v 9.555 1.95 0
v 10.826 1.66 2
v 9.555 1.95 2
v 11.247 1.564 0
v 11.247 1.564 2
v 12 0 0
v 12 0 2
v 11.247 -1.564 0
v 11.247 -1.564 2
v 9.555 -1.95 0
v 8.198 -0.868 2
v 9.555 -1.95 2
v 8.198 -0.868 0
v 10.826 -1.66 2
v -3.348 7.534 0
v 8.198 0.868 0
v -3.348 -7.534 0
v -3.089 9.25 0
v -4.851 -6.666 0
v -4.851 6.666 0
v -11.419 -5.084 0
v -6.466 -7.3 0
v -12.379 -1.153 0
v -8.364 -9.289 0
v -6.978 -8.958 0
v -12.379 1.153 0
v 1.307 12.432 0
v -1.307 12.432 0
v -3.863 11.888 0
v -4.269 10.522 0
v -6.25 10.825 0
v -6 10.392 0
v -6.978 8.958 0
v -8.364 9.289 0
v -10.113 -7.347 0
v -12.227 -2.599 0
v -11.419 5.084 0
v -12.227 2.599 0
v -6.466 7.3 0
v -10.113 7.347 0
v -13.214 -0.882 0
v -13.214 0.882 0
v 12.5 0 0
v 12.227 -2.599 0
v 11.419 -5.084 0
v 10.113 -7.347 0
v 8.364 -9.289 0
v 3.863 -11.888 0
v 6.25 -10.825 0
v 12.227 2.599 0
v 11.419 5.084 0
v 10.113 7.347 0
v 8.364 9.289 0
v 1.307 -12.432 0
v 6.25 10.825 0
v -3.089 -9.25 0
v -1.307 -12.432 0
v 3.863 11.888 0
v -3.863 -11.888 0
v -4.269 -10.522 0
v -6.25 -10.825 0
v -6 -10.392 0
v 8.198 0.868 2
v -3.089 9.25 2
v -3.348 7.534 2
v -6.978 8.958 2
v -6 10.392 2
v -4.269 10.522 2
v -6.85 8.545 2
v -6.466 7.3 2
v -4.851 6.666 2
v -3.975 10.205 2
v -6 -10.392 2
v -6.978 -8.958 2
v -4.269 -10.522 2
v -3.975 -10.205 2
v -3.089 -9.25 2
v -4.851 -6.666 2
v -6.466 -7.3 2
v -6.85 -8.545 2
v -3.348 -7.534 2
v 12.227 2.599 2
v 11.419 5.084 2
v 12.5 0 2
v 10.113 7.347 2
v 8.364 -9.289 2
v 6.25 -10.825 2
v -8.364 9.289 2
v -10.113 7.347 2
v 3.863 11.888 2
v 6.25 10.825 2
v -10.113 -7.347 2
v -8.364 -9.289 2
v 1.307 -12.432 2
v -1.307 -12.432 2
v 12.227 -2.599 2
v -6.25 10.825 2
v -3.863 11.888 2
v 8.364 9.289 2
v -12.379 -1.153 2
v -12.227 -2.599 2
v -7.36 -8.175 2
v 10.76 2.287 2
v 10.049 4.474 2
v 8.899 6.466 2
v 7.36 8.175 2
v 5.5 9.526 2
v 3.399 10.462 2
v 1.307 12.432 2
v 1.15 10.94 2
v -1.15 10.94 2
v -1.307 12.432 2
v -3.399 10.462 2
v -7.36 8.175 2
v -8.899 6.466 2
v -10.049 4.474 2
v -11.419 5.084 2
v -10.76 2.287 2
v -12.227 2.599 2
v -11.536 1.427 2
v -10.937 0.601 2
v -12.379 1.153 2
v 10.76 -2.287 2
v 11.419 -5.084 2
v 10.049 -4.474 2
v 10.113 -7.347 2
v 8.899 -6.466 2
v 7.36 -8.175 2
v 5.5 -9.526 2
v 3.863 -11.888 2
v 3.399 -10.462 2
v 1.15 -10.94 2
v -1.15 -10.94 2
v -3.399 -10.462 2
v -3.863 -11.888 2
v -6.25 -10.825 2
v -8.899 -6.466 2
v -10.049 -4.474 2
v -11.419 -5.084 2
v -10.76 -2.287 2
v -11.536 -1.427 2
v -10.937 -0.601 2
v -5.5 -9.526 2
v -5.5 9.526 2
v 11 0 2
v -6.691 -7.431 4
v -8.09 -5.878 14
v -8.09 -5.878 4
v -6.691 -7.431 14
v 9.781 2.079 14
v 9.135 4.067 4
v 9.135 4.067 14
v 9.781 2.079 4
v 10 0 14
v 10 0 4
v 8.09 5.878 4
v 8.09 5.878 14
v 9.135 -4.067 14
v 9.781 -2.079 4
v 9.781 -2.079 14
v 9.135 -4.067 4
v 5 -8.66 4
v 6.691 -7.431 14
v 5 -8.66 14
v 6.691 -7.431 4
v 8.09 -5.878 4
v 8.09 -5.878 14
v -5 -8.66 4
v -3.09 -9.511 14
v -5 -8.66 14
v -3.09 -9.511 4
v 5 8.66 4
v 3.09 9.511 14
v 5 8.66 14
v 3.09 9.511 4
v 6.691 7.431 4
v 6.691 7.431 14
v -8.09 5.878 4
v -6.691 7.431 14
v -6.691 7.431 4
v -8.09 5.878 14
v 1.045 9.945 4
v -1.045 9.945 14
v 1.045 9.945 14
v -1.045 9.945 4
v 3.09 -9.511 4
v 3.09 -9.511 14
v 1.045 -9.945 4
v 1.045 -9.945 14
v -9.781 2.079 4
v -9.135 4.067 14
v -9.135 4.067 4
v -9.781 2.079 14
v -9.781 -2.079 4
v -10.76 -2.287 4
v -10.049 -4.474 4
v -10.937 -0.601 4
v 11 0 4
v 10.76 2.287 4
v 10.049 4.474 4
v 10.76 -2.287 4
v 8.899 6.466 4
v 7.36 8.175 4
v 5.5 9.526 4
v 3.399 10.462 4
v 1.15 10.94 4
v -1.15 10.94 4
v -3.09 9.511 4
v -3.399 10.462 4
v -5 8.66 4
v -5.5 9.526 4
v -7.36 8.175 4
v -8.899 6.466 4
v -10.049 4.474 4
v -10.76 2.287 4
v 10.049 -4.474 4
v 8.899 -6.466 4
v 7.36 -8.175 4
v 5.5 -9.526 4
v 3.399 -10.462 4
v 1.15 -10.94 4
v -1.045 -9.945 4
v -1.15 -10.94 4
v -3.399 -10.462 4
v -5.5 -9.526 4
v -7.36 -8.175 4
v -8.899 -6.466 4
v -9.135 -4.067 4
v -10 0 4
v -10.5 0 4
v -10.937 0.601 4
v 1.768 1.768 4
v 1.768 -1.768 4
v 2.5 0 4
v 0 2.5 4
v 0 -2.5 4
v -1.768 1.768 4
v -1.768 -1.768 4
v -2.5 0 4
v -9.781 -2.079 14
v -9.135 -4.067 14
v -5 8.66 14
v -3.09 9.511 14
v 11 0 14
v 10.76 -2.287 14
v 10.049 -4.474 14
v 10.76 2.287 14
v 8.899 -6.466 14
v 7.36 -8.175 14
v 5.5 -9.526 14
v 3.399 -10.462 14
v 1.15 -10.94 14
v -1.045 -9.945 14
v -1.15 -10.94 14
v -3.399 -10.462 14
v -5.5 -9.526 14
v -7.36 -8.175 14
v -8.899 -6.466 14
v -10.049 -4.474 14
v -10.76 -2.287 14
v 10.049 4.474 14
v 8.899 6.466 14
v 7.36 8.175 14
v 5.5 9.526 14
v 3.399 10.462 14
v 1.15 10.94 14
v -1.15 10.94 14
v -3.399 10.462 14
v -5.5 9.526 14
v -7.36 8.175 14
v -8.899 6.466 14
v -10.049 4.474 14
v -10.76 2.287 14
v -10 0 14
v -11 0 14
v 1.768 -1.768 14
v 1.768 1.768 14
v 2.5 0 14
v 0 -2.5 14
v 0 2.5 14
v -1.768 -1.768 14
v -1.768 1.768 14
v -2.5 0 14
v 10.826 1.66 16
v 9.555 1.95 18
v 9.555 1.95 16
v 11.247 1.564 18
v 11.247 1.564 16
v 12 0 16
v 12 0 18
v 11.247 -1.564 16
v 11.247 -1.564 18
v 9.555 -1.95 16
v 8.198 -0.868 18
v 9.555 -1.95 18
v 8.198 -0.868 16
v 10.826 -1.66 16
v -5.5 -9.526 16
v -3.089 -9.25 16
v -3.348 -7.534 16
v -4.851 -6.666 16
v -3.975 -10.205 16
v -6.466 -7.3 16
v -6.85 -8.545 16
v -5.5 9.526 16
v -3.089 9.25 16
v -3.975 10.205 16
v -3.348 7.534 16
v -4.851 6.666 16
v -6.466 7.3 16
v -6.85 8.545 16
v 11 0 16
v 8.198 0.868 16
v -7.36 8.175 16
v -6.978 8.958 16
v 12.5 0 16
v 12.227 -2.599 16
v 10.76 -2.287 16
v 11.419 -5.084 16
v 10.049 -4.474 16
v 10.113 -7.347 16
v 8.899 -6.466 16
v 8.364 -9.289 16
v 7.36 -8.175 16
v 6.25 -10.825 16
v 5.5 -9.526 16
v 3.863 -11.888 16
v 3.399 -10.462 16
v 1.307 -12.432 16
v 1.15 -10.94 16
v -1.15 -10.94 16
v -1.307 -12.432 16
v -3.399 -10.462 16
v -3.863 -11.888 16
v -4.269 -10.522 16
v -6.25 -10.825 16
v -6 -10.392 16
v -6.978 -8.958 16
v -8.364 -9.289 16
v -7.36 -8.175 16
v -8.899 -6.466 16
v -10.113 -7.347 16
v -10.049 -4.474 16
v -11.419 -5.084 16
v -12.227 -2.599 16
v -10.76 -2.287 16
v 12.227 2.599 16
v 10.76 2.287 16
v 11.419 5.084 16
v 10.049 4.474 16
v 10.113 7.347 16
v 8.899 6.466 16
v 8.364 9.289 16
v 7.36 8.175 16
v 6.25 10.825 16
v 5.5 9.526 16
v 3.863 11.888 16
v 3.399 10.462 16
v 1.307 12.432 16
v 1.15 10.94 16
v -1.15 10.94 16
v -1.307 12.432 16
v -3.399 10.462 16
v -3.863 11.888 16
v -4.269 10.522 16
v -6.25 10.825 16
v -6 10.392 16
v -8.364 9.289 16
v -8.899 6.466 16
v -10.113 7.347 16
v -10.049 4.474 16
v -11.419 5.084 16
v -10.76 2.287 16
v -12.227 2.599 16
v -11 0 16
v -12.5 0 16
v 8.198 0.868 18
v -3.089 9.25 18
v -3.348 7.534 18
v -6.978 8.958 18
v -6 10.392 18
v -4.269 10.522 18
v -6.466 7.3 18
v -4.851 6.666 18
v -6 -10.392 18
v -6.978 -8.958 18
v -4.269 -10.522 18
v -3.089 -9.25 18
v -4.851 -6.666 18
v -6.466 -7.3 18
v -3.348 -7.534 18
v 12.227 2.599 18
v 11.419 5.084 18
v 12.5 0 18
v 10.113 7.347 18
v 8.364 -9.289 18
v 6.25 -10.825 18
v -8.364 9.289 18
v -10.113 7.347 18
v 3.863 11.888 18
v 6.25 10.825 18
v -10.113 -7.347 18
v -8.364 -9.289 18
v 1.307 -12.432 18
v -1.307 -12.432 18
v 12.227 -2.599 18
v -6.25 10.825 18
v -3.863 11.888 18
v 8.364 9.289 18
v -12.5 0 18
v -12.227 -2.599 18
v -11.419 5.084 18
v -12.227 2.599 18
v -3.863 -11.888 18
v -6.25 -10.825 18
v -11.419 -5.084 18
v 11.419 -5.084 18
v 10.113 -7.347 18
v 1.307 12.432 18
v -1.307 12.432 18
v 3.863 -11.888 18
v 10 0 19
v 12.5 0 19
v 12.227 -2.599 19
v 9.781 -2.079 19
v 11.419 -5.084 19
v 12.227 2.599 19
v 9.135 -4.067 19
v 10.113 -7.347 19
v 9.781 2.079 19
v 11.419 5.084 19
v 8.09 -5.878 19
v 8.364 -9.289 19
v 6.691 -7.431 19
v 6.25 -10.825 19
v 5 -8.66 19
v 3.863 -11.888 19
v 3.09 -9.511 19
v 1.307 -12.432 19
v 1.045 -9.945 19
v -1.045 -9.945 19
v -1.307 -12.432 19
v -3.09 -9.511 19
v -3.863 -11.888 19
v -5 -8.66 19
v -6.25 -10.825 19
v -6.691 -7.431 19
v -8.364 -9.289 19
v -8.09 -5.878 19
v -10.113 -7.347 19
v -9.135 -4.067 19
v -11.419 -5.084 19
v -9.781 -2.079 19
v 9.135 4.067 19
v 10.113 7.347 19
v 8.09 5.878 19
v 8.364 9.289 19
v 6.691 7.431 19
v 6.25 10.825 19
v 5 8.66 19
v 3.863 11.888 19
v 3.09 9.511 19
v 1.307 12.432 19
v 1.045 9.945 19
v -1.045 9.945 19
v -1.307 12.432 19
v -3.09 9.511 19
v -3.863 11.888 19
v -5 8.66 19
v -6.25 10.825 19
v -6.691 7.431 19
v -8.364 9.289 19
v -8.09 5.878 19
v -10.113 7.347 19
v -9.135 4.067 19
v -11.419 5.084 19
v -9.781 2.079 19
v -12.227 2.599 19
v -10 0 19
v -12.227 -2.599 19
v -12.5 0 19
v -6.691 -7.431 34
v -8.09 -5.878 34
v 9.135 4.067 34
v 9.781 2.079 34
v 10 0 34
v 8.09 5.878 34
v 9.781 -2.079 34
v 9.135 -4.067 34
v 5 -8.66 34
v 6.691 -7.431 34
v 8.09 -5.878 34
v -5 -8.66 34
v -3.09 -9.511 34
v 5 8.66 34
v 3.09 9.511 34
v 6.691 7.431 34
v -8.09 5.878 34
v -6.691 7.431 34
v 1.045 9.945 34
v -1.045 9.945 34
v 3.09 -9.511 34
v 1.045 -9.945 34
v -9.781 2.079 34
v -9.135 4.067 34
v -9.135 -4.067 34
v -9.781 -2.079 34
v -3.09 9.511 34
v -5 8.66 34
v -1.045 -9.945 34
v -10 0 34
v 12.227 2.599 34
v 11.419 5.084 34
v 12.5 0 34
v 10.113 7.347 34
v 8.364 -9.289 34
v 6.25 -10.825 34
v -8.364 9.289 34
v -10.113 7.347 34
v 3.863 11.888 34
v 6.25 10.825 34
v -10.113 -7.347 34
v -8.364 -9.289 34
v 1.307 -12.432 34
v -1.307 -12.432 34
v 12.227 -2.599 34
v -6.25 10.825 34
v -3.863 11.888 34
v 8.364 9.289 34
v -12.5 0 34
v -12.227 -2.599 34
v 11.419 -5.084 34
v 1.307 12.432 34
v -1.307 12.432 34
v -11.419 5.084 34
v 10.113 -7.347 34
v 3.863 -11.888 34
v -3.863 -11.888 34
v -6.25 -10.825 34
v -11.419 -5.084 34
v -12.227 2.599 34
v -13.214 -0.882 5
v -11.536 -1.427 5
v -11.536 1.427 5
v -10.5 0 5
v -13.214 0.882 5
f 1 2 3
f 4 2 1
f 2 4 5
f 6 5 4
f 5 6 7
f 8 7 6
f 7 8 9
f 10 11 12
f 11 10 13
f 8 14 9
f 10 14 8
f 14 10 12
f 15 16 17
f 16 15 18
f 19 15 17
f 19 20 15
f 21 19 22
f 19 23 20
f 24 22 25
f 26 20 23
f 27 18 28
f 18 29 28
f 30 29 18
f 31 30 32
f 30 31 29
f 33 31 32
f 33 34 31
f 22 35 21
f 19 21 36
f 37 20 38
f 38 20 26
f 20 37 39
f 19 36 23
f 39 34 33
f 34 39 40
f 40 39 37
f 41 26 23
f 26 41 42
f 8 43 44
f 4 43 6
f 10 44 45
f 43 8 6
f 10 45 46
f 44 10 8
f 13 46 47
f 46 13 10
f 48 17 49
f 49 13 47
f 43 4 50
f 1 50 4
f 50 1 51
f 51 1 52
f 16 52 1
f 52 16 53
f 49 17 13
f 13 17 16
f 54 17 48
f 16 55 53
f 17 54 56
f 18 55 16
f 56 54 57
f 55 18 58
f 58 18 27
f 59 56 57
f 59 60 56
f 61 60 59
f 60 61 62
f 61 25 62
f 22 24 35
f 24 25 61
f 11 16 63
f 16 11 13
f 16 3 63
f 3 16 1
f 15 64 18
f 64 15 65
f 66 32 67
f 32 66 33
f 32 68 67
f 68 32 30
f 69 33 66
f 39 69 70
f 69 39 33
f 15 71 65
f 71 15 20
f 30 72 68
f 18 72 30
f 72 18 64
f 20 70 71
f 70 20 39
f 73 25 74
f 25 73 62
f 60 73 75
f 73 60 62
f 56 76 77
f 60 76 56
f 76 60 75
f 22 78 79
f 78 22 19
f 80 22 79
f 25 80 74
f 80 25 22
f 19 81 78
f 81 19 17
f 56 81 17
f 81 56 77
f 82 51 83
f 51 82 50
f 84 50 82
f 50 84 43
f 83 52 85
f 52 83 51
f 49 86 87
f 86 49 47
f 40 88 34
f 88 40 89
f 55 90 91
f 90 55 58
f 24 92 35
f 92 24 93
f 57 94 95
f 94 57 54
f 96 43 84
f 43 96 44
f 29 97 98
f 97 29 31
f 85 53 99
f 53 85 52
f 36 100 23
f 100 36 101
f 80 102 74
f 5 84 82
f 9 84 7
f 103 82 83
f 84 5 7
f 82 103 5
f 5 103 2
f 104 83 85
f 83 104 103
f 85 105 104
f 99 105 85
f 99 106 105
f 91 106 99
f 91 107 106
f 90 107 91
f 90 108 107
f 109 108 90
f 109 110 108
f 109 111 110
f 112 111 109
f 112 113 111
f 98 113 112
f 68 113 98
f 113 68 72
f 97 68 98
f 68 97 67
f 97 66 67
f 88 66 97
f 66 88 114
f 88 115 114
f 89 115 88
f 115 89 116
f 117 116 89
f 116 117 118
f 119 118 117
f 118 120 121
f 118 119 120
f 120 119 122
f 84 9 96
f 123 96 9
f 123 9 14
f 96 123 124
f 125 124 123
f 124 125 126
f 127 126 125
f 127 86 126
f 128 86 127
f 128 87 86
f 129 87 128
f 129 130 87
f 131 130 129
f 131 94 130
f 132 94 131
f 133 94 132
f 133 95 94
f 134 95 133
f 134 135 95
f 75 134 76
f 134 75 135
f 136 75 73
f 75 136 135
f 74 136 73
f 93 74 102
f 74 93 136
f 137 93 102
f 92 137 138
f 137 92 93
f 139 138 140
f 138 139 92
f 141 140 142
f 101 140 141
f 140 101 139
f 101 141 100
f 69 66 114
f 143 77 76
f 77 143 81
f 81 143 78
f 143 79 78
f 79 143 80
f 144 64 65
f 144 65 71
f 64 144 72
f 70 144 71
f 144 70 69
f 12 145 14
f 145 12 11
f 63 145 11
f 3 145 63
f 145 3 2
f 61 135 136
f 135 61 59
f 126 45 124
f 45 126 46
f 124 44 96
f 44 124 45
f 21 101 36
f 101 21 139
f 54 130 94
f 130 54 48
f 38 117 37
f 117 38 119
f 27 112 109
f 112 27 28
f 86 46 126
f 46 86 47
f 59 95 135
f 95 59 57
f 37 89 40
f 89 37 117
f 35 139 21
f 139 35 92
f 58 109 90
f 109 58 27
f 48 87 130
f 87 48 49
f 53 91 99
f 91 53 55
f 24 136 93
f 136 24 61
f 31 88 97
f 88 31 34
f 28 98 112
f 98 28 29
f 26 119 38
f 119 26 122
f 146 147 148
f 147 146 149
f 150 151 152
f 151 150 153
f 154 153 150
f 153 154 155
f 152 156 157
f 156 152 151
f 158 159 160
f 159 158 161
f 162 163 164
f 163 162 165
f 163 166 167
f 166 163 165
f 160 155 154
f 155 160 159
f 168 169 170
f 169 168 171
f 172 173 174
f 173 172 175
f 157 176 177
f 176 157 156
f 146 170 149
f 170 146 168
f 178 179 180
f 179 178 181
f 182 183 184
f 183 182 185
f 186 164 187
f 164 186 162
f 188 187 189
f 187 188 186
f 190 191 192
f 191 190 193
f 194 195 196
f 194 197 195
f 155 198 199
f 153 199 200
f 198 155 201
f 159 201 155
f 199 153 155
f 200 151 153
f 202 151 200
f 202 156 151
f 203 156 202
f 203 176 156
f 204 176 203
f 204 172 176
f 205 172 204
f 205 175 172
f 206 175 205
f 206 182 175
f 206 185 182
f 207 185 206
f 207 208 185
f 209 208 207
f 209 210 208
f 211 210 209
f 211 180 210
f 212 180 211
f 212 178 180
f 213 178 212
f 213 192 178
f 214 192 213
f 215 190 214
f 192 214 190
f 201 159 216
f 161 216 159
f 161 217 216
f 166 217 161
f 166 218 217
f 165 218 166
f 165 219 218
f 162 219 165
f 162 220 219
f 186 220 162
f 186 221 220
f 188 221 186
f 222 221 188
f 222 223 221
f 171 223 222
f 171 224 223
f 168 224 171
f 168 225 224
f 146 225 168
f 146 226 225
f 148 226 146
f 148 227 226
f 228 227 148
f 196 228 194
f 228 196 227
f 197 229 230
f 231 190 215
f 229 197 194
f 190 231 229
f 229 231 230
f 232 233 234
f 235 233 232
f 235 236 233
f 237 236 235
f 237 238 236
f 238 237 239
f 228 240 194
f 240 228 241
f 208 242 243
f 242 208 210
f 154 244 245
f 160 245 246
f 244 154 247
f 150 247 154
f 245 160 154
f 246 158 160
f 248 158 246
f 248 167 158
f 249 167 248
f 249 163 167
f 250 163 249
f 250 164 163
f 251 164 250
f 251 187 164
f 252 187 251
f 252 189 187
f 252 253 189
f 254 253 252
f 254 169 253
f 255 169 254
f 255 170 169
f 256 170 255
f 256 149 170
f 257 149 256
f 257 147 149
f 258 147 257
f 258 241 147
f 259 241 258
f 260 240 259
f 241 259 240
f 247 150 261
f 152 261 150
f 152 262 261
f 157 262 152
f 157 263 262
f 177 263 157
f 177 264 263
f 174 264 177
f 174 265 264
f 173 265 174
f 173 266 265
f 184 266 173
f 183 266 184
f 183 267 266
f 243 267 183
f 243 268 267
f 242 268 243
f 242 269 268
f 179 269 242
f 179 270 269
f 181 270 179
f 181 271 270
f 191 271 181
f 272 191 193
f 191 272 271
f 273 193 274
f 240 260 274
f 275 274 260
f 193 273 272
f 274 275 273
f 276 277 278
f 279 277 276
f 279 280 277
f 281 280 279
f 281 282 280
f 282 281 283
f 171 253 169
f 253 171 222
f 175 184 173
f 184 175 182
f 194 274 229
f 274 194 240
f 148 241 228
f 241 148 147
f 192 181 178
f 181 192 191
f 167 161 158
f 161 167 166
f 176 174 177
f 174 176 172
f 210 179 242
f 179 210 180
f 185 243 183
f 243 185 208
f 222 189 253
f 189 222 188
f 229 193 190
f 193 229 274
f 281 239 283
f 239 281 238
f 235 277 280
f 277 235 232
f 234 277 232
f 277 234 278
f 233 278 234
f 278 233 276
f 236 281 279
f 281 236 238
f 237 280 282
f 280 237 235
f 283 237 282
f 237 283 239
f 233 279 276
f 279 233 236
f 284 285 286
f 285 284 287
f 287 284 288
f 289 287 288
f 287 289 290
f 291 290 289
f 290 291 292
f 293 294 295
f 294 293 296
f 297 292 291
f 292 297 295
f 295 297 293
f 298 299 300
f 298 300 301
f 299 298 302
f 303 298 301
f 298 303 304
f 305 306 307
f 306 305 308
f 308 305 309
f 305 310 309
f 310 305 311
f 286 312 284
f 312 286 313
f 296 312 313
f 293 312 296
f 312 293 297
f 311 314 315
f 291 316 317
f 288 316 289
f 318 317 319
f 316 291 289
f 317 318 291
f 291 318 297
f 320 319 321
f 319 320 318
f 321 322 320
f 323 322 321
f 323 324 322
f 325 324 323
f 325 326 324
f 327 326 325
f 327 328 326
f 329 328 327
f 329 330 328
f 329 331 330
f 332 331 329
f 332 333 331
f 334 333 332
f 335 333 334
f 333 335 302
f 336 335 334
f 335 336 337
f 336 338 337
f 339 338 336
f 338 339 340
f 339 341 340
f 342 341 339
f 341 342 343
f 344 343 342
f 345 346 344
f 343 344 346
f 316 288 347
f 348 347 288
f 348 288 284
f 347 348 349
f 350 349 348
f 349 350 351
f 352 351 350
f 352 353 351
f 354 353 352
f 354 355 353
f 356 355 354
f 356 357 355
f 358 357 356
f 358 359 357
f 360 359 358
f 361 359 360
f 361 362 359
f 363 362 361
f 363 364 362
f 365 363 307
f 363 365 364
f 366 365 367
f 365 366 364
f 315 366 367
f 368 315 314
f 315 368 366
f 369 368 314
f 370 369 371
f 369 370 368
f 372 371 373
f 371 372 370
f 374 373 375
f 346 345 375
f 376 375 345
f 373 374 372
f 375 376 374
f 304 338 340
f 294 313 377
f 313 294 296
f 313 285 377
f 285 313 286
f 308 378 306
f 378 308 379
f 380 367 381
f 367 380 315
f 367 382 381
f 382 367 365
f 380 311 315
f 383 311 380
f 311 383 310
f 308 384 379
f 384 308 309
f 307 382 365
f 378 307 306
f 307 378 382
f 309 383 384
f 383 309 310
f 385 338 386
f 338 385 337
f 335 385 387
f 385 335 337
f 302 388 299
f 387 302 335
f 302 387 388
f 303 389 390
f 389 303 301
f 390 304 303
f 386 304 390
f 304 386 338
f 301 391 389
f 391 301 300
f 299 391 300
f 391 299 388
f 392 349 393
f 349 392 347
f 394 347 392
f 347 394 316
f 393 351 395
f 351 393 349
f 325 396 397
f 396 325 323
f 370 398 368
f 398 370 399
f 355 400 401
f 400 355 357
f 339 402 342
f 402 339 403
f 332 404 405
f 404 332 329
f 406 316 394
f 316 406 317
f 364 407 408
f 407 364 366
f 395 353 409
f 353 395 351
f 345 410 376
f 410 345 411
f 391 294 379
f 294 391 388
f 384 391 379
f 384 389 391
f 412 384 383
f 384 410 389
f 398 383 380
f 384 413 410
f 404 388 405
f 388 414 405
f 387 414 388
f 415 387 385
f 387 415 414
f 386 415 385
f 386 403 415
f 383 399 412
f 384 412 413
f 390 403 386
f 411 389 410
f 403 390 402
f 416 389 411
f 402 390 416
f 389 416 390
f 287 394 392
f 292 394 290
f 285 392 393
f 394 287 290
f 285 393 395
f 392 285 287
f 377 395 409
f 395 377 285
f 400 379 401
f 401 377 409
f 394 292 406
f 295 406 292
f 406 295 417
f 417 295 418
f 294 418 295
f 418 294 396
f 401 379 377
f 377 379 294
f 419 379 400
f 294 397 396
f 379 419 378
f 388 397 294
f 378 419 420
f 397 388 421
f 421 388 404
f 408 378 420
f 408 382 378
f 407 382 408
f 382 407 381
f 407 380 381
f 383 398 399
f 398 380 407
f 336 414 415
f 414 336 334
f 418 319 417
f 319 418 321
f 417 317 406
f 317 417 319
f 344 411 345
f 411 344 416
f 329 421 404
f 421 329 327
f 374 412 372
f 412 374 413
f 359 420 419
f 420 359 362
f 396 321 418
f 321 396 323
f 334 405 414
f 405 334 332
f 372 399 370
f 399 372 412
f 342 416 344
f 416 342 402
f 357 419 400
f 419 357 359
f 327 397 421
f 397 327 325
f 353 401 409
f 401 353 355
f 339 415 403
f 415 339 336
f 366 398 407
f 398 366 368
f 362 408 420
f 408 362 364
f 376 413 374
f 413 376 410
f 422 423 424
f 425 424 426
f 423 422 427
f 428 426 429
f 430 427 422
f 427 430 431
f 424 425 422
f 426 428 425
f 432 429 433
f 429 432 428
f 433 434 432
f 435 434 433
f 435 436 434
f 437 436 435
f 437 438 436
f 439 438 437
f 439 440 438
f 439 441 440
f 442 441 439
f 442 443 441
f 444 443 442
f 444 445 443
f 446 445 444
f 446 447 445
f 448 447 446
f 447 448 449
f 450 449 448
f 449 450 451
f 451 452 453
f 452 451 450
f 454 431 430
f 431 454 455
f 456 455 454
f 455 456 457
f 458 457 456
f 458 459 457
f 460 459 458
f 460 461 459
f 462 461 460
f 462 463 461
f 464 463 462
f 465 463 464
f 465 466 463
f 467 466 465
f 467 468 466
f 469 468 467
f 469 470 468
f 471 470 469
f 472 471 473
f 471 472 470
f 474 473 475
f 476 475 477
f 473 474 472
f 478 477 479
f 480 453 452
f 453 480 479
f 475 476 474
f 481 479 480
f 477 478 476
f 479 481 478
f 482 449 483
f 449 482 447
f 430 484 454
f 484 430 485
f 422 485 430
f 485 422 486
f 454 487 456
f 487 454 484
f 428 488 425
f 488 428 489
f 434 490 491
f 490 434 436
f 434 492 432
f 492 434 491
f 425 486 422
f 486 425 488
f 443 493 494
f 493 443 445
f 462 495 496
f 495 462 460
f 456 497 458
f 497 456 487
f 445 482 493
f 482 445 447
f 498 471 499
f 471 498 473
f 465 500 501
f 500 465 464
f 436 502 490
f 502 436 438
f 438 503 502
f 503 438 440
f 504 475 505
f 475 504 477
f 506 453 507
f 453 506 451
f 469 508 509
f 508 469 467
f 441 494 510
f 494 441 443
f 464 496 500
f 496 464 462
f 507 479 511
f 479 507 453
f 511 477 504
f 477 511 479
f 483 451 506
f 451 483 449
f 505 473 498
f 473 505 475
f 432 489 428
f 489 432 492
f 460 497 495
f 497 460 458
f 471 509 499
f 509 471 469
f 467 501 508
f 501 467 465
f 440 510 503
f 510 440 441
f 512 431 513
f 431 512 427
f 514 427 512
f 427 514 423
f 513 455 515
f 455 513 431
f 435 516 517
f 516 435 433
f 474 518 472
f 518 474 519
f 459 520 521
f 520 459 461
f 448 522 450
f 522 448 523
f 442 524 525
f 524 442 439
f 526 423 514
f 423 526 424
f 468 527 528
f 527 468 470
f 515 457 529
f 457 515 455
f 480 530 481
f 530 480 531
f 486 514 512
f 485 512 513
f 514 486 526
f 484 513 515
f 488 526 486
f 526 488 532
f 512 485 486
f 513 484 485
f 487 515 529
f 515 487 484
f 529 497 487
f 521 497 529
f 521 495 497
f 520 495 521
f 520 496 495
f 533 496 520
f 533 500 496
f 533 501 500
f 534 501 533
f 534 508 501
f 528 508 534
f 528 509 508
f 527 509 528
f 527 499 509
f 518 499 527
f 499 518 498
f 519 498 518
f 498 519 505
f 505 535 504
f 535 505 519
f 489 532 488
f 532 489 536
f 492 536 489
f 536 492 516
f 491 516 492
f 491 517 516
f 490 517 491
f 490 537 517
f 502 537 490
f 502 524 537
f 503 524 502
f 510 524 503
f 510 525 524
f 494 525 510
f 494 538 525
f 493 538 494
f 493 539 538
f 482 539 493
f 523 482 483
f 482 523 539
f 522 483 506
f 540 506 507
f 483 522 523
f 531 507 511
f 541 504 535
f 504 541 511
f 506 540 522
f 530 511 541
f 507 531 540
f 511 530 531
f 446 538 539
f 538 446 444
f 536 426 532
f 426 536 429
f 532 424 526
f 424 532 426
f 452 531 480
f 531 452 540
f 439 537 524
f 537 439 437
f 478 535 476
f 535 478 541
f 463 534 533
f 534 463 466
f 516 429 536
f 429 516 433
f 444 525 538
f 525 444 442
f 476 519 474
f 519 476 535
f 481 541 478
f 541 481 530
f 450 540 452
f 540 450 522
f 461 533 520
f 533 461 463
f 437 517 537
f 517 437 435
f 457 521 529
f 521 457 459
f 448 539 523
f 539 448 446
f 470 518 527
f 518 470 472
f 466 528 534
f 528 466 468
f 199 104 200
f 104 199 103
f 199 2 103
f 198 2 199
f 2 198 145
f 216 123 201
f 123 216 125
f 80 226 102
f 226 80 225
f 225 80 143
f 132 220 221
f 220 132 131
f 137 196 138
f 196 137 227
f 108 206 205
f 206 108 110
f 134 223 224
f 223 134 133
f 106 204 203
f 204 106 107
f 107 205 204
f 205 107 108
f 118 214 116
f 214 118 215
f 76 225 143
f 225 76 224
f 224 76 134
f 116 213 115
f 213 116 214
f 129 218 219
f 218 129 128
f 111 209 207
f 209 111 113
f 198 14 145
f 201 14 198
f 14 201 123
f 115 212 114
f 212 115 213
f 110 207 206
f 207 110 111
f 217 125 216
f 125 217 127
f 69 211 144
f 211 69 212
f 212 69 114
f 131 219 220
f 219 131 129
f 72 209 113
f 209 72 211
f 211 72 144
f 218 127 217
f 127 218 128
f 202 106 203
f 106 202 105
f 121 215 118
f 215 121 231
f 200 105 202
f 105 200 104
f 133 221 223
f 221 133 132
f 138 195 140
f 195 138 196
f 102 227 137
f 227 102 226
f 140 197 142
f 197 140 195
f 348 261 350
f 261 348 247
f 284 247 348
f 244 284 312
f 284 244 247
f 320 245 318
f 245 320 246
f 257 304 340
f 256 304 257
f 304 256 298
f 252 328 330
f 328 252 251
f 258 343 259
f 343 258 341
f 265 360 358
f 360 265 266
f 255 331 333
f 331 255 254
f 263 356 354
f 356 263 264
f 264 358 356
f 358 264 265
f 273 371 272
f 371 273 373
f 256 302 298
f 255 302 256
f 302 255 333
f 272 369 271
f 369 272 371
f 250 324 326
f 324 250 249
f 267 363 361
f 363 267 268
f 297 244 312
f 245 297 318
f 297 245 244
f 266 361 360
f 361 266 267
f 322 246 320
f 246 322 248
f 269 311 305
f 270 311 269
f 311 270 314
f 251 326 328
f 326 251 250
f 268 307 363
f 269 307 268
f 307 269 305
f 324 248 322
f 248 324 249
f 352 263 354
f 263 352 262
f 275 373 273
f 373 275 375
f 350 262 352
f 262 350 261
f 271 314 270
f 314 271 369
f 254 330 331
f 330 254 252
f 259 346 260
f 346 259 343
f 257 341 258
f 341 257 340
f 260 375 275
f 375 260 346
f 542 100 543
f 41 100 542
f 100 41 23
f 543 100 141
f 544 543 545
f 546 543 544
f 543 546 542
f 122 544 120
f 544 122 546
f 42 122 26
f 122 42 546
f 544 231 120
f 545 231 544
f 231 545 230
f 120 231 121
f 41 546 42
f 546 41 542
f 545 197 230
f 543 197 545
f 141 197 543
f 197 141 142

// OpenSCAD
// Define dimensions for components
module central_gear() {
    // Assuming central gear dimensions: diameter 20, height 10
    difference() {
        cylinder(d = 20, h = 10);
        cylinder(d = 5, h = 12);  // Central hole
    }
}

module outer_ring() {
    // Assuming outer ring dimensions: diameter 25, height 15
    difference() {
        cylinder(d = 25, h = 15);
        cylinder(d = 20, h = 15);  // Internal space for central gear
    }
}

module inner_ring() {
    // Assuming inner ring dimensions: diameter 22, height 10
    difference() {
        cylinder(d = 22, h = 10);
        cylinder(d = 20, h = 10);  // Internal fit for central gear
    }
}

module locking_plate() {
    // Assuming plate dimensions: diameter 25, thickness 2
    difference() {
        cylinder(d = 25, h = 2);
        for (i = [0 : 120 : 240]) {
            rotate([0, 0, i]) translate([10, 0, 0]) cylinder(d = 4, h = 3);  // Bolt holes
        }
    }
}

module groove_plate() {
    // Assuming plate with grooves dimensions: diameter 22, thickness 2
    cylinder(d = 22, h = 2);
}

module bolt() {
    // Bolt dimensions: diameter 3, length 5
    cylinder(d = 3, h = 5);
}

module nut() {
    // Nut dimensions: diameter 4, thickness 2
    cylinder(d = 4, h = 2);
}

// Assembly of components based on positional relationship
module assembly() {
    translate([0, 0, 0]) locking_plate();
    translate([0, 0, 2]) groove_plate();
    translate([0, 0, 4]) central_gear();
    translate([0, 0, 14]) groove_plate();
    translate([0, 0, 16]) locking_plate();
    translate([-12, 0, 0]) bolt();  // Bolt position example
    translate([0, 0, 19]) inner_ring();
    translate([0, 0, 19]) outer_ring();
}

// Render assembly
assembly();
